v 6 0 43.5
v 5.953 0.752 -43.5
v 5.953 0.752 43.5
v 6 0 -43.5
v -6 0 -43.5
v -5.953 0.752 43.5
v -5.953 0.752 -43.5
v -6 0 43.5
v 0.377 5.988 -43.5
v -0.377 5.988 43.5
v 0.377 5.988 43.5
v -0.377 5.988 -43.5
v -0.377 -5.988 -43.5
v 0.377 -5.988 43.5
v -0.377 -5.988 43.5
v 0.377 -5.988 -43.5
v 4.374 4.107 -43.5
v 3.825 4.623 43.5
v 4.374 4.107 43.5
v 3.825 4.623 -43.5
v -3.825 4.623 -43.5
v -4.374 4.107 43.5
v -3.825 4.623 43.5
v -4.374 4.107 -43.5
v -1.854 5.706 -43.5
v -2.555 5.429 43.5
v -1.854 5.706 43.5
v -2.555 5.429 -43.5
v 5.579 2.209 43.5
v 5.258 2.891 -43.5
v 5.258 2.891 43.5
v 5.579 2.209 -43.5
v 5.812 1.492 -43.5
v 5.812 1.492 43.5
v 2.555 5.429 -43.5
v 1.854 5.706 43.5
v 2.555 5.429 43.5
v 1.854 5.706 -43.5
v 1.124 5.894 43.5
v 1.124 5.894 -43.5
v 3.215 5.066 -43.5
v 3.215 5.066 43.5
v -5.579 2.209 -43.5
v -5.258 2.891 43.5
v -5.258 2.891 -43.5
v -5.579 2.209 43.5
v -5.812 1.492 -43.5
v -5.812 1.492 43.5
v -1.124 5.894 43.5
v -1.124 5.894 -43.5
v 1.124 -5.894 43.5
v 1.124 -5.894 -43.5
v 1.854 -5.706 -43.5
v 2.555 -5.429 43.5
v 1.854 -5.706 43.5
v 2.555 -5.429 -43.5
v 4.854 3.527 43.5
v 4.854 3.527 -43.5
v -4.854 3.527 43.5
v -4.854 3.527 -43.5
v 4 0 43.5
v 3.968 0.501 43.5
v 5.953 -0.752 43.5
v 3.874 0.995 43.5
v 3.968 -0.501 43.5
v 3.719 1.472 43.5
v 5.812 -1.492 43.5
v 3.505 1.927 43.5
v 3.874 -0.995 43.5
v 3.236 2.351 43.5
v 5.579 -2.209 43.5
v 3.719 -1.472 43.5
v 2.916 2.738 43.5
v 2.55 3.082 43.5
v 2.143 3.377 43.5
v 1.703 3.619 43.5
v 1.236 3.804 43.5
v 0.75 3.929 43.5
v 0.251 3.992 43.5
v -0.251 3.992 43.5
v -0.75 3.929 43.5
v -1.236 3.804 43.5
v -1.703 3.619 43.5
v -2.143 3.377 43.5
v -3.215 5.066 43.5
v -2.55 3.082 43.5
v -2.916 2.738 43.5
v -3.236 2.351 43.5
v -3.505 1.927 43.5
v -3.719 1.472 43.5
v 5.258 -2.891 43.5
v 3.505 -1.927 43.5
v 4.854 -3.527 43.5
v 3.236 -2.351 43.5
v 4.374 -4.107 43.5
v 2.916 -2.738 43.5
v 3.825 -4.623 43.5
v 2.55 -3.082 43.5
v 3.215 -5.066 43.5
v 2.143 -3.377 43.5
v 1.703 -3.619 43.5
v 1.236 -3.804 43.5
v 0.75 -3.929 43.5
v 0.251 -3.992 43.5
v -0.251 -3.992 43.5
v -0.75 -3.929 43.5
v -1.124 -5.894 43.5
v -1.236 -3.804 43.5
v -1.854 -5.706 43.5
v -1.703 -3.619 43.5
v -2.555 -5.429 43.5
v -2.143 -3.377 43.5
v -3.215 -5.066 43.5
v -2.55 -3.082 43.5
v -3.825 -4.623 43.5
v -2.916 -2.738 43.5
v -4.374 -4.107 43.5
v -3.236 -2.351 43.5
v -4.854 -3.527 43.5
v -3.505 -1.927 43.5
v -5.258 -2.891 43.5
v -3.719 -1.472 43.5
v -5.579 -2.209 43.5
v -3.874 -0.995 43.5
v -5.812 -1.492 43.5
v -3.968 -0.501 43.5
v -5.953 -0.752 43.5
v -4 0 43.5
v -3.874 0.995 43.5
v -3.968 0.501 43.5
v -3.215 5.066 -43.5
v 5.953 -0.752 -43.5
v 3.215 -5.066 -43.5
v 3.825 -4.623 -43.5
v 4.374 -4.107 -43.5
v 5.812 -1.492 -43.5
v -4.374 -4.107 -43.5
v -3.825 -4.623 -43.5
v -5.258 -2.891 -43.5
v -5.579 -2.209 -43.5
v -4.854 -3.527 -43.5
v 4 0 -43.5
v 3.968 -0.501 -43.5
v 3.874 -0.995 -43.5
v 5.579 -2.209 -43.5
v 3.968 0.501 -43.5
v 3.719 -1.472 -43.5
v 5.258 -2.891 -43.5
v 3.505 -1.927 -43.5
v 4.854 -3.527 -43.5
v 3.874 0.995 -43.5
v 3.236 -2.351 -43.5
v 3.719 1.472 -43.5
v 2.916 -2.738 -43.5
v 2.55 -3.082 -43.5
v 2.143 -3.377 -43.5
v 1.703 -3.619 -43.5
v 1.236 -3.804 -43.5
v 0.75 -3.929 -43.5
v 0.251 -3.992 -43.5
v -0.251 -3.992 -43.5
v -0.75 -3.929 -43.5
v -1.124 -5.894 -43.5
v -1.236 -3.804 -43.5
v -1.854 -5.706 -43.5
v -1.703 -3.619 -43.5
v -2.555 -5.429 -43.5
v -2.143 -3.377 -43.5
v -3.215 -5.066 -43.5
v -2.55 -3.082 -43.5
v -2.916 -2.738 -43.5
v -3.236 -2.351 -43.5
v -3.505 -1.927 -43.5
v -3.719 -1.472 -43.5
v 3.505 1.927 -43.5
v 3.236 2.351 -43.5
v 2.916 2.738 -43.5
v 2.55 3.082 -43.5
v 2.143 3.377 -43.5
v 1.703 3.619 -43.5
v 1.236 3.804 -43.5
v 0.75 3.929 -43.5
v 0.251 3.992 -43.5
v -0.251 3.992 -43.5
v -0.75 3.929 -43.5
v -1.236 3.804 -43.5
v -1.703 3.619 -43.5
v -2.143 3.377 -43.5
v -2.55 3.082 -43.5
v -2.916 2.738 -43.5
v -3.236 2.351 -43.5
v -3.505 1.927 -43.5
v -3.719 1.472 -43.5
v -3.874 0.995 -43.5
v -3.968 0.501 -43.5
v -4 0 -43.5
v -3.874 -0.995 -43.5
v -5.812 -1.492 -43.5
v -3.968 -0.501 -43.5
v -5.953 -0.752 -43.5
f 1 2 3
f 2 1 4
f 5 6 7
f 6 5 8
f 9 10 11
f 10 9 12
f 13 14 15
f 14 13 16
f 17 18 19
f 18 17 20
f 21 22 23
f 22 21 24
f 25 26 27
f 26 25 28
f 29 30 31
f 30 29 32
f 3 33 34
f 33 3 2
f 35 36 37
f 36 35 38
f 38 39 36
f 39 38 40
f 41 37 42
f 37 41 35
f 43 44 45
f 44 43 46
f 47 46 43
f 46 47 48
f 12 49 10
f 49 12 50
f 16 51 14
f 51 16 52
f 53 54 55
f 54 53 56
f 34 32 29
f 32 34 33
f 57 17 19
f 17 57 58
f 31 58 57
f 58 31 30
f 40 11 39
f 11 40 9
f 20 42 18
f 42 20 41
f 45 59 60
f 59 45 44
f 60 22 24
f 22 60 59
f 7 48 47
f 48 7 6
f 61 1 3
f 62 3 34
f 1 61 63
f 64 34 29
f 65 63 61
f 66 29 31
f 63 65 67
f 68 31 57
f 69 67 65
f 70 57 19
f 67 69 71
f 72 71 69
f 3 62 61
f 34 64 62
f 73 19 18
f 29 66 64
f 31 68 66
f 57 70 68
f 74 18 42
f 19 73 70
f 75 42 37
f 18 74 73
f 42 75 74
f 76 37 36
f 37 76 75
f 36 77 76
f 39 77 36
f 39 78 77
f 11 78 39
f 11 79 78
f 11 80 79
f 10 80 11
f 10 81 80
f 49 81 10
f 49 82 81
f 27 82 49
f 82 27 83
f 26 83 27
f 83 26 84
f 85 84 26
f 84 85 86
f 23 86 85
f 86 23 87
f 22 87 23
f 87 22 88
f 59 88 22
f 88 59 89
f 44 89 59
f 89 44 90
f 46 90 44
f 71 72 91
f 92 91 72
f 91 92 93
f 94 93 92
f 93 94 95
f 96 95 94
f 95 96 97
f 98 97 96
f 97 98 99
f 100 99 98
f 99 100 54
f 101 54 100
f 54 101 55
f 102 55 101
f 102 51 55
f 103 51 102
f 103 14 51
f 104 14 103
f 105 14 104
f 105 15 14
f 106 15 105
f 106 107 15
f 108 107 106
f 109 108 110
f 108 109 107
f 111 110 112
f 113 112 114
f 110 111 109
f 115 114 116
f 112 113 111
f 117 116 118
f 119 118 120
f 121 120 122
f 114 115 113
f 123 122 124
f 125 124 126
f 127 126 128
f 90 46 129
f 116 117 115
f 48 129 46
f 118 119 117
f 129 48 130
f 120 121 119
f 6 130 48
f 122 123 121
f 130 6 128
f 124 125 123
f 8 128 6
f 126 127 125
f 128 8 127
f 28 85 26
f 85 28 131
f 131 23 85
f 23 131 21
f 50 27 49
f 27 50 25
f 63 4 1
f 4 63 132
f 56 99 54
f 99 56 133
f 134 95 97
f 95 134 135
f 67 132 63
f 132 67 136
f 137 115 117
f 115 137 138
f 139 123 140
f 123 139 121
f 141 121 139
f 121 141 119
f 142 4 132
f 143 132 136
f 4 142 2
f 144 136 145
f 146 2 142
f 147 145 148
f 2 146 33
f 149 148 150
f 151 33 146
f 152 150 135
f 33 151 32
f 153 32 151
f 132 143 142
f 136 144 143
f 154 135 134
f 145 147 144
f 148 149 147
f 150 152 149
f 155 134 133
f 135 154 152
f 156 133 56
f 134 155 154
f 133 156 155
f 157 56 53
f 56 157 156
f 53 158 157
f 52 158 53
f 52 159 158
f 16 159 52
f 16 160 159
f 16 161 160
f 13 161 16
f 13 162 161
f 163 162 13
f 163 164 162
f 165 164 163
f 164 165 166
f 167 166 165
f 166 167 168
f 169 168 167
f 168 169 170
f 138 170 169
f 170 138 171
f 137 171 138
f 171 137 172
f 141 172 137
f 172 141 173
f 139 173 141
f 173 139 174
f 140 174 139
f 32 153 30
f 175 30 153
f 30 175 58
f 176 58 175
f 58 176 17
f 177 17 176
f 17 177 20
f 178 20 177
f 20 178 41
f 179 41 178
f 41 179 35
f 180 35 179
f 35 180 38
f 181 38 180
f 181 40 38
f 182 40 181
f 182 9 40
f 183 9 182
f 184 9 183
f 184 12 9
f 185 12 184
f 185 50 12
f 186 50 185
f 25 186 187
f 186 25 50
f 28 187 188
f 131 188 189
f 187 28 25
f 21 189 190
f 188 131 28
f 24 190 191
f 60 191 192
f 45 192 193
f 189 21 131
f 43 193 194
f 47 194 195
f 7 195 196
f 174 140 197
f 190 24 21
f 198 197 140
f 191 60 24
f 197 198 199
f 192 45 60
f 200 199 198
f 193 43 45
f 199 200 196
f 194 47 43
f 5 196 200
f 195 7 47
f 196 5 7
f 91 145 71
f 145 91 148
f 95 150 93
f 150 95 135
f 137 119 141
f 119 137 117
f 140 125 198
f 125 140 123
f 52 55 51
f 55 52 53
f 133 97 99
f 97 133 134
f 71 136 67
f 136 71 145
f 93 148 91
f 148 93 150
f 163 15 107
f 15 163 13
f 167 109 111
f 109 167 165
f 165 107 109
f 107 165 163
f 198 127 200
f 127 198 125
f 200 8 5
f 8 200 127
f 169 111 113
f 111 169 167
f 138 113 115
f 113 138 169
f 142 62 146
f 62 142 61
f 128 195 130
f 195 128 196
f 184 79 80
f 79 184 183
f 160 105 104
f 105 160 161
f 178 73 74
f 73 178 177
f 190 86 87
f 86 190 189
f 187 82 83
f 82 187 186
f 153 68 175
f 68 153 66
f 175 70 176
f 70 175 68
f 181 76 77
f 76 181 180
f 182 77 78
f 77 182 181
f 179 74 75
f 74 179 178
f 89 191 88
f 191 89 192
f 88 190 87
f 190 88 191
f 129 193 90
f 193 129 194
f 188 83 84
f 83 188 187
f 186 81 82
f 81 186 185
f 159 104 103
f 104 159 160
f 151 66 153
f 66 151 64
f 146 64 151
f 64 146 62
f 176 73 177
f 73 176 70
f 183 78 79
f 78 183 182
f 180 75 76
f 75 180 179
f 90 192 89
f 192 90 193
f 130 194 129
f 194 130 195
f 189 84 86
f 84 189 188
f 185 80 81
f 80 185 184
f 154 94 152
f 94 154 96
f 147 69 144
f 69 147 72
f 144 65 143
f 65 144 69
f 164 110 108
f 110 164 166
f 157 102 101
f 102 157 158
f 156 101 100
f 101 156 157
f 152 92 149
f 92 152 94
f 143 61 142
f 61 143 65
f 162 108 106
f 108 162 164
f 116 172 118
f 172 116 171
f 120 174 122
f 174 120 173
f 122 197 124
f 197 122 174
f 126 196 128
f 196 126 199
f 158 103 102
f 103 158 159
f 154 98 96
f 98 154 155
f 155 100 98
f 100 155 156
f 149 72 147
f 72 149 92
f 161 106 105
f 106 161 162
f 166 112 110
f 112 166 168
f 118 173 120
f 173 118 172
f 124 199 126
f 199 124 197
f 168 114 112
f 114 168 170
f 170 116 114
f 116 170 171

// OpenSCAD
$fn = 50;


difference() {
	union() {
		translate(v = [0, 0, -43.5000000000]) {
			cylinder(h = 87, r = 6.0000000000);
		}
	}
	union() {
		translate(v = [0, 0, -100.0000000000]) {
			cylinder(h = 200, r = 4);
		}
	}
}
